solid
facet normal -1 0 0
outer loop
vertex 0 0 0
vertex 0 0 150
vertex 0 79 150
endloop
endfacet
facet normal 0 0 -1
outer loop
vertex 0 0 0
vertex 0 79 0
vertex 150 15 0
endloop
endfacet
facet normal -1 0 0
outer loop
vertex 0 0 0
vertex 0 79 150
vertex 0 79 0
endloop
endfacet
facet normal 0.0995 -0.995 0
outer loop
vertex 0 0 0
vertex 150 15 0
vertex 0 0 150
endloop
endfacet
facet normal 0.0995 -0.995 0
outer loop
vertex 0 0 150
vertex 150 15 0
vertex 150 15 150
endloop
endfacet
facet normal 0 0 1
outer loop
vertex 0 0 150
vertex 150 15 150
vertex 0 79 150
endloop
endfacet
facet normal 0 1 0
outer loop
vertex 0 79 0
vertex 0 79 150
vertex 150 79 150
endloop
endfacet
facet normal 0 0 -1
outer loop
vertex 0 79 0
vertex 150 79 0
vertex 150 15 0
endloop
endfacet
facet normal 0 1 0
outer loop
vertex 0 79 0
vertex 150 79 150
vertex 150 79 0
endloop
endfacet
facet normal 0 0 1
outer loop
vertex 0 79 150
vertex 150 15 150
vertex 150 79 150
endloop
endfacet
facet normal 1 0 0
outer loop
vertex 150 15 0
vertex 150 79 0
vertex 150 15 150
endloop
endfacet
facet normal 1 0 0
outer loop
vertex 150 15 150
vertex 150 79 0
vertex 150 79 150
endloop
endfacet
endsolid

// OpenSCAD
// arm rest for the desk
// 20.09.2025 Sebastian Weigl
 
// set the fregment sizes
$fn = $preview ? 48 : 64;

 linear_extrude(height=150, scale=[1,1], slices=0, twist=0)
 polygon(points=[[0,0],[0,79],[150,79],[150,15],[0,0]]);
